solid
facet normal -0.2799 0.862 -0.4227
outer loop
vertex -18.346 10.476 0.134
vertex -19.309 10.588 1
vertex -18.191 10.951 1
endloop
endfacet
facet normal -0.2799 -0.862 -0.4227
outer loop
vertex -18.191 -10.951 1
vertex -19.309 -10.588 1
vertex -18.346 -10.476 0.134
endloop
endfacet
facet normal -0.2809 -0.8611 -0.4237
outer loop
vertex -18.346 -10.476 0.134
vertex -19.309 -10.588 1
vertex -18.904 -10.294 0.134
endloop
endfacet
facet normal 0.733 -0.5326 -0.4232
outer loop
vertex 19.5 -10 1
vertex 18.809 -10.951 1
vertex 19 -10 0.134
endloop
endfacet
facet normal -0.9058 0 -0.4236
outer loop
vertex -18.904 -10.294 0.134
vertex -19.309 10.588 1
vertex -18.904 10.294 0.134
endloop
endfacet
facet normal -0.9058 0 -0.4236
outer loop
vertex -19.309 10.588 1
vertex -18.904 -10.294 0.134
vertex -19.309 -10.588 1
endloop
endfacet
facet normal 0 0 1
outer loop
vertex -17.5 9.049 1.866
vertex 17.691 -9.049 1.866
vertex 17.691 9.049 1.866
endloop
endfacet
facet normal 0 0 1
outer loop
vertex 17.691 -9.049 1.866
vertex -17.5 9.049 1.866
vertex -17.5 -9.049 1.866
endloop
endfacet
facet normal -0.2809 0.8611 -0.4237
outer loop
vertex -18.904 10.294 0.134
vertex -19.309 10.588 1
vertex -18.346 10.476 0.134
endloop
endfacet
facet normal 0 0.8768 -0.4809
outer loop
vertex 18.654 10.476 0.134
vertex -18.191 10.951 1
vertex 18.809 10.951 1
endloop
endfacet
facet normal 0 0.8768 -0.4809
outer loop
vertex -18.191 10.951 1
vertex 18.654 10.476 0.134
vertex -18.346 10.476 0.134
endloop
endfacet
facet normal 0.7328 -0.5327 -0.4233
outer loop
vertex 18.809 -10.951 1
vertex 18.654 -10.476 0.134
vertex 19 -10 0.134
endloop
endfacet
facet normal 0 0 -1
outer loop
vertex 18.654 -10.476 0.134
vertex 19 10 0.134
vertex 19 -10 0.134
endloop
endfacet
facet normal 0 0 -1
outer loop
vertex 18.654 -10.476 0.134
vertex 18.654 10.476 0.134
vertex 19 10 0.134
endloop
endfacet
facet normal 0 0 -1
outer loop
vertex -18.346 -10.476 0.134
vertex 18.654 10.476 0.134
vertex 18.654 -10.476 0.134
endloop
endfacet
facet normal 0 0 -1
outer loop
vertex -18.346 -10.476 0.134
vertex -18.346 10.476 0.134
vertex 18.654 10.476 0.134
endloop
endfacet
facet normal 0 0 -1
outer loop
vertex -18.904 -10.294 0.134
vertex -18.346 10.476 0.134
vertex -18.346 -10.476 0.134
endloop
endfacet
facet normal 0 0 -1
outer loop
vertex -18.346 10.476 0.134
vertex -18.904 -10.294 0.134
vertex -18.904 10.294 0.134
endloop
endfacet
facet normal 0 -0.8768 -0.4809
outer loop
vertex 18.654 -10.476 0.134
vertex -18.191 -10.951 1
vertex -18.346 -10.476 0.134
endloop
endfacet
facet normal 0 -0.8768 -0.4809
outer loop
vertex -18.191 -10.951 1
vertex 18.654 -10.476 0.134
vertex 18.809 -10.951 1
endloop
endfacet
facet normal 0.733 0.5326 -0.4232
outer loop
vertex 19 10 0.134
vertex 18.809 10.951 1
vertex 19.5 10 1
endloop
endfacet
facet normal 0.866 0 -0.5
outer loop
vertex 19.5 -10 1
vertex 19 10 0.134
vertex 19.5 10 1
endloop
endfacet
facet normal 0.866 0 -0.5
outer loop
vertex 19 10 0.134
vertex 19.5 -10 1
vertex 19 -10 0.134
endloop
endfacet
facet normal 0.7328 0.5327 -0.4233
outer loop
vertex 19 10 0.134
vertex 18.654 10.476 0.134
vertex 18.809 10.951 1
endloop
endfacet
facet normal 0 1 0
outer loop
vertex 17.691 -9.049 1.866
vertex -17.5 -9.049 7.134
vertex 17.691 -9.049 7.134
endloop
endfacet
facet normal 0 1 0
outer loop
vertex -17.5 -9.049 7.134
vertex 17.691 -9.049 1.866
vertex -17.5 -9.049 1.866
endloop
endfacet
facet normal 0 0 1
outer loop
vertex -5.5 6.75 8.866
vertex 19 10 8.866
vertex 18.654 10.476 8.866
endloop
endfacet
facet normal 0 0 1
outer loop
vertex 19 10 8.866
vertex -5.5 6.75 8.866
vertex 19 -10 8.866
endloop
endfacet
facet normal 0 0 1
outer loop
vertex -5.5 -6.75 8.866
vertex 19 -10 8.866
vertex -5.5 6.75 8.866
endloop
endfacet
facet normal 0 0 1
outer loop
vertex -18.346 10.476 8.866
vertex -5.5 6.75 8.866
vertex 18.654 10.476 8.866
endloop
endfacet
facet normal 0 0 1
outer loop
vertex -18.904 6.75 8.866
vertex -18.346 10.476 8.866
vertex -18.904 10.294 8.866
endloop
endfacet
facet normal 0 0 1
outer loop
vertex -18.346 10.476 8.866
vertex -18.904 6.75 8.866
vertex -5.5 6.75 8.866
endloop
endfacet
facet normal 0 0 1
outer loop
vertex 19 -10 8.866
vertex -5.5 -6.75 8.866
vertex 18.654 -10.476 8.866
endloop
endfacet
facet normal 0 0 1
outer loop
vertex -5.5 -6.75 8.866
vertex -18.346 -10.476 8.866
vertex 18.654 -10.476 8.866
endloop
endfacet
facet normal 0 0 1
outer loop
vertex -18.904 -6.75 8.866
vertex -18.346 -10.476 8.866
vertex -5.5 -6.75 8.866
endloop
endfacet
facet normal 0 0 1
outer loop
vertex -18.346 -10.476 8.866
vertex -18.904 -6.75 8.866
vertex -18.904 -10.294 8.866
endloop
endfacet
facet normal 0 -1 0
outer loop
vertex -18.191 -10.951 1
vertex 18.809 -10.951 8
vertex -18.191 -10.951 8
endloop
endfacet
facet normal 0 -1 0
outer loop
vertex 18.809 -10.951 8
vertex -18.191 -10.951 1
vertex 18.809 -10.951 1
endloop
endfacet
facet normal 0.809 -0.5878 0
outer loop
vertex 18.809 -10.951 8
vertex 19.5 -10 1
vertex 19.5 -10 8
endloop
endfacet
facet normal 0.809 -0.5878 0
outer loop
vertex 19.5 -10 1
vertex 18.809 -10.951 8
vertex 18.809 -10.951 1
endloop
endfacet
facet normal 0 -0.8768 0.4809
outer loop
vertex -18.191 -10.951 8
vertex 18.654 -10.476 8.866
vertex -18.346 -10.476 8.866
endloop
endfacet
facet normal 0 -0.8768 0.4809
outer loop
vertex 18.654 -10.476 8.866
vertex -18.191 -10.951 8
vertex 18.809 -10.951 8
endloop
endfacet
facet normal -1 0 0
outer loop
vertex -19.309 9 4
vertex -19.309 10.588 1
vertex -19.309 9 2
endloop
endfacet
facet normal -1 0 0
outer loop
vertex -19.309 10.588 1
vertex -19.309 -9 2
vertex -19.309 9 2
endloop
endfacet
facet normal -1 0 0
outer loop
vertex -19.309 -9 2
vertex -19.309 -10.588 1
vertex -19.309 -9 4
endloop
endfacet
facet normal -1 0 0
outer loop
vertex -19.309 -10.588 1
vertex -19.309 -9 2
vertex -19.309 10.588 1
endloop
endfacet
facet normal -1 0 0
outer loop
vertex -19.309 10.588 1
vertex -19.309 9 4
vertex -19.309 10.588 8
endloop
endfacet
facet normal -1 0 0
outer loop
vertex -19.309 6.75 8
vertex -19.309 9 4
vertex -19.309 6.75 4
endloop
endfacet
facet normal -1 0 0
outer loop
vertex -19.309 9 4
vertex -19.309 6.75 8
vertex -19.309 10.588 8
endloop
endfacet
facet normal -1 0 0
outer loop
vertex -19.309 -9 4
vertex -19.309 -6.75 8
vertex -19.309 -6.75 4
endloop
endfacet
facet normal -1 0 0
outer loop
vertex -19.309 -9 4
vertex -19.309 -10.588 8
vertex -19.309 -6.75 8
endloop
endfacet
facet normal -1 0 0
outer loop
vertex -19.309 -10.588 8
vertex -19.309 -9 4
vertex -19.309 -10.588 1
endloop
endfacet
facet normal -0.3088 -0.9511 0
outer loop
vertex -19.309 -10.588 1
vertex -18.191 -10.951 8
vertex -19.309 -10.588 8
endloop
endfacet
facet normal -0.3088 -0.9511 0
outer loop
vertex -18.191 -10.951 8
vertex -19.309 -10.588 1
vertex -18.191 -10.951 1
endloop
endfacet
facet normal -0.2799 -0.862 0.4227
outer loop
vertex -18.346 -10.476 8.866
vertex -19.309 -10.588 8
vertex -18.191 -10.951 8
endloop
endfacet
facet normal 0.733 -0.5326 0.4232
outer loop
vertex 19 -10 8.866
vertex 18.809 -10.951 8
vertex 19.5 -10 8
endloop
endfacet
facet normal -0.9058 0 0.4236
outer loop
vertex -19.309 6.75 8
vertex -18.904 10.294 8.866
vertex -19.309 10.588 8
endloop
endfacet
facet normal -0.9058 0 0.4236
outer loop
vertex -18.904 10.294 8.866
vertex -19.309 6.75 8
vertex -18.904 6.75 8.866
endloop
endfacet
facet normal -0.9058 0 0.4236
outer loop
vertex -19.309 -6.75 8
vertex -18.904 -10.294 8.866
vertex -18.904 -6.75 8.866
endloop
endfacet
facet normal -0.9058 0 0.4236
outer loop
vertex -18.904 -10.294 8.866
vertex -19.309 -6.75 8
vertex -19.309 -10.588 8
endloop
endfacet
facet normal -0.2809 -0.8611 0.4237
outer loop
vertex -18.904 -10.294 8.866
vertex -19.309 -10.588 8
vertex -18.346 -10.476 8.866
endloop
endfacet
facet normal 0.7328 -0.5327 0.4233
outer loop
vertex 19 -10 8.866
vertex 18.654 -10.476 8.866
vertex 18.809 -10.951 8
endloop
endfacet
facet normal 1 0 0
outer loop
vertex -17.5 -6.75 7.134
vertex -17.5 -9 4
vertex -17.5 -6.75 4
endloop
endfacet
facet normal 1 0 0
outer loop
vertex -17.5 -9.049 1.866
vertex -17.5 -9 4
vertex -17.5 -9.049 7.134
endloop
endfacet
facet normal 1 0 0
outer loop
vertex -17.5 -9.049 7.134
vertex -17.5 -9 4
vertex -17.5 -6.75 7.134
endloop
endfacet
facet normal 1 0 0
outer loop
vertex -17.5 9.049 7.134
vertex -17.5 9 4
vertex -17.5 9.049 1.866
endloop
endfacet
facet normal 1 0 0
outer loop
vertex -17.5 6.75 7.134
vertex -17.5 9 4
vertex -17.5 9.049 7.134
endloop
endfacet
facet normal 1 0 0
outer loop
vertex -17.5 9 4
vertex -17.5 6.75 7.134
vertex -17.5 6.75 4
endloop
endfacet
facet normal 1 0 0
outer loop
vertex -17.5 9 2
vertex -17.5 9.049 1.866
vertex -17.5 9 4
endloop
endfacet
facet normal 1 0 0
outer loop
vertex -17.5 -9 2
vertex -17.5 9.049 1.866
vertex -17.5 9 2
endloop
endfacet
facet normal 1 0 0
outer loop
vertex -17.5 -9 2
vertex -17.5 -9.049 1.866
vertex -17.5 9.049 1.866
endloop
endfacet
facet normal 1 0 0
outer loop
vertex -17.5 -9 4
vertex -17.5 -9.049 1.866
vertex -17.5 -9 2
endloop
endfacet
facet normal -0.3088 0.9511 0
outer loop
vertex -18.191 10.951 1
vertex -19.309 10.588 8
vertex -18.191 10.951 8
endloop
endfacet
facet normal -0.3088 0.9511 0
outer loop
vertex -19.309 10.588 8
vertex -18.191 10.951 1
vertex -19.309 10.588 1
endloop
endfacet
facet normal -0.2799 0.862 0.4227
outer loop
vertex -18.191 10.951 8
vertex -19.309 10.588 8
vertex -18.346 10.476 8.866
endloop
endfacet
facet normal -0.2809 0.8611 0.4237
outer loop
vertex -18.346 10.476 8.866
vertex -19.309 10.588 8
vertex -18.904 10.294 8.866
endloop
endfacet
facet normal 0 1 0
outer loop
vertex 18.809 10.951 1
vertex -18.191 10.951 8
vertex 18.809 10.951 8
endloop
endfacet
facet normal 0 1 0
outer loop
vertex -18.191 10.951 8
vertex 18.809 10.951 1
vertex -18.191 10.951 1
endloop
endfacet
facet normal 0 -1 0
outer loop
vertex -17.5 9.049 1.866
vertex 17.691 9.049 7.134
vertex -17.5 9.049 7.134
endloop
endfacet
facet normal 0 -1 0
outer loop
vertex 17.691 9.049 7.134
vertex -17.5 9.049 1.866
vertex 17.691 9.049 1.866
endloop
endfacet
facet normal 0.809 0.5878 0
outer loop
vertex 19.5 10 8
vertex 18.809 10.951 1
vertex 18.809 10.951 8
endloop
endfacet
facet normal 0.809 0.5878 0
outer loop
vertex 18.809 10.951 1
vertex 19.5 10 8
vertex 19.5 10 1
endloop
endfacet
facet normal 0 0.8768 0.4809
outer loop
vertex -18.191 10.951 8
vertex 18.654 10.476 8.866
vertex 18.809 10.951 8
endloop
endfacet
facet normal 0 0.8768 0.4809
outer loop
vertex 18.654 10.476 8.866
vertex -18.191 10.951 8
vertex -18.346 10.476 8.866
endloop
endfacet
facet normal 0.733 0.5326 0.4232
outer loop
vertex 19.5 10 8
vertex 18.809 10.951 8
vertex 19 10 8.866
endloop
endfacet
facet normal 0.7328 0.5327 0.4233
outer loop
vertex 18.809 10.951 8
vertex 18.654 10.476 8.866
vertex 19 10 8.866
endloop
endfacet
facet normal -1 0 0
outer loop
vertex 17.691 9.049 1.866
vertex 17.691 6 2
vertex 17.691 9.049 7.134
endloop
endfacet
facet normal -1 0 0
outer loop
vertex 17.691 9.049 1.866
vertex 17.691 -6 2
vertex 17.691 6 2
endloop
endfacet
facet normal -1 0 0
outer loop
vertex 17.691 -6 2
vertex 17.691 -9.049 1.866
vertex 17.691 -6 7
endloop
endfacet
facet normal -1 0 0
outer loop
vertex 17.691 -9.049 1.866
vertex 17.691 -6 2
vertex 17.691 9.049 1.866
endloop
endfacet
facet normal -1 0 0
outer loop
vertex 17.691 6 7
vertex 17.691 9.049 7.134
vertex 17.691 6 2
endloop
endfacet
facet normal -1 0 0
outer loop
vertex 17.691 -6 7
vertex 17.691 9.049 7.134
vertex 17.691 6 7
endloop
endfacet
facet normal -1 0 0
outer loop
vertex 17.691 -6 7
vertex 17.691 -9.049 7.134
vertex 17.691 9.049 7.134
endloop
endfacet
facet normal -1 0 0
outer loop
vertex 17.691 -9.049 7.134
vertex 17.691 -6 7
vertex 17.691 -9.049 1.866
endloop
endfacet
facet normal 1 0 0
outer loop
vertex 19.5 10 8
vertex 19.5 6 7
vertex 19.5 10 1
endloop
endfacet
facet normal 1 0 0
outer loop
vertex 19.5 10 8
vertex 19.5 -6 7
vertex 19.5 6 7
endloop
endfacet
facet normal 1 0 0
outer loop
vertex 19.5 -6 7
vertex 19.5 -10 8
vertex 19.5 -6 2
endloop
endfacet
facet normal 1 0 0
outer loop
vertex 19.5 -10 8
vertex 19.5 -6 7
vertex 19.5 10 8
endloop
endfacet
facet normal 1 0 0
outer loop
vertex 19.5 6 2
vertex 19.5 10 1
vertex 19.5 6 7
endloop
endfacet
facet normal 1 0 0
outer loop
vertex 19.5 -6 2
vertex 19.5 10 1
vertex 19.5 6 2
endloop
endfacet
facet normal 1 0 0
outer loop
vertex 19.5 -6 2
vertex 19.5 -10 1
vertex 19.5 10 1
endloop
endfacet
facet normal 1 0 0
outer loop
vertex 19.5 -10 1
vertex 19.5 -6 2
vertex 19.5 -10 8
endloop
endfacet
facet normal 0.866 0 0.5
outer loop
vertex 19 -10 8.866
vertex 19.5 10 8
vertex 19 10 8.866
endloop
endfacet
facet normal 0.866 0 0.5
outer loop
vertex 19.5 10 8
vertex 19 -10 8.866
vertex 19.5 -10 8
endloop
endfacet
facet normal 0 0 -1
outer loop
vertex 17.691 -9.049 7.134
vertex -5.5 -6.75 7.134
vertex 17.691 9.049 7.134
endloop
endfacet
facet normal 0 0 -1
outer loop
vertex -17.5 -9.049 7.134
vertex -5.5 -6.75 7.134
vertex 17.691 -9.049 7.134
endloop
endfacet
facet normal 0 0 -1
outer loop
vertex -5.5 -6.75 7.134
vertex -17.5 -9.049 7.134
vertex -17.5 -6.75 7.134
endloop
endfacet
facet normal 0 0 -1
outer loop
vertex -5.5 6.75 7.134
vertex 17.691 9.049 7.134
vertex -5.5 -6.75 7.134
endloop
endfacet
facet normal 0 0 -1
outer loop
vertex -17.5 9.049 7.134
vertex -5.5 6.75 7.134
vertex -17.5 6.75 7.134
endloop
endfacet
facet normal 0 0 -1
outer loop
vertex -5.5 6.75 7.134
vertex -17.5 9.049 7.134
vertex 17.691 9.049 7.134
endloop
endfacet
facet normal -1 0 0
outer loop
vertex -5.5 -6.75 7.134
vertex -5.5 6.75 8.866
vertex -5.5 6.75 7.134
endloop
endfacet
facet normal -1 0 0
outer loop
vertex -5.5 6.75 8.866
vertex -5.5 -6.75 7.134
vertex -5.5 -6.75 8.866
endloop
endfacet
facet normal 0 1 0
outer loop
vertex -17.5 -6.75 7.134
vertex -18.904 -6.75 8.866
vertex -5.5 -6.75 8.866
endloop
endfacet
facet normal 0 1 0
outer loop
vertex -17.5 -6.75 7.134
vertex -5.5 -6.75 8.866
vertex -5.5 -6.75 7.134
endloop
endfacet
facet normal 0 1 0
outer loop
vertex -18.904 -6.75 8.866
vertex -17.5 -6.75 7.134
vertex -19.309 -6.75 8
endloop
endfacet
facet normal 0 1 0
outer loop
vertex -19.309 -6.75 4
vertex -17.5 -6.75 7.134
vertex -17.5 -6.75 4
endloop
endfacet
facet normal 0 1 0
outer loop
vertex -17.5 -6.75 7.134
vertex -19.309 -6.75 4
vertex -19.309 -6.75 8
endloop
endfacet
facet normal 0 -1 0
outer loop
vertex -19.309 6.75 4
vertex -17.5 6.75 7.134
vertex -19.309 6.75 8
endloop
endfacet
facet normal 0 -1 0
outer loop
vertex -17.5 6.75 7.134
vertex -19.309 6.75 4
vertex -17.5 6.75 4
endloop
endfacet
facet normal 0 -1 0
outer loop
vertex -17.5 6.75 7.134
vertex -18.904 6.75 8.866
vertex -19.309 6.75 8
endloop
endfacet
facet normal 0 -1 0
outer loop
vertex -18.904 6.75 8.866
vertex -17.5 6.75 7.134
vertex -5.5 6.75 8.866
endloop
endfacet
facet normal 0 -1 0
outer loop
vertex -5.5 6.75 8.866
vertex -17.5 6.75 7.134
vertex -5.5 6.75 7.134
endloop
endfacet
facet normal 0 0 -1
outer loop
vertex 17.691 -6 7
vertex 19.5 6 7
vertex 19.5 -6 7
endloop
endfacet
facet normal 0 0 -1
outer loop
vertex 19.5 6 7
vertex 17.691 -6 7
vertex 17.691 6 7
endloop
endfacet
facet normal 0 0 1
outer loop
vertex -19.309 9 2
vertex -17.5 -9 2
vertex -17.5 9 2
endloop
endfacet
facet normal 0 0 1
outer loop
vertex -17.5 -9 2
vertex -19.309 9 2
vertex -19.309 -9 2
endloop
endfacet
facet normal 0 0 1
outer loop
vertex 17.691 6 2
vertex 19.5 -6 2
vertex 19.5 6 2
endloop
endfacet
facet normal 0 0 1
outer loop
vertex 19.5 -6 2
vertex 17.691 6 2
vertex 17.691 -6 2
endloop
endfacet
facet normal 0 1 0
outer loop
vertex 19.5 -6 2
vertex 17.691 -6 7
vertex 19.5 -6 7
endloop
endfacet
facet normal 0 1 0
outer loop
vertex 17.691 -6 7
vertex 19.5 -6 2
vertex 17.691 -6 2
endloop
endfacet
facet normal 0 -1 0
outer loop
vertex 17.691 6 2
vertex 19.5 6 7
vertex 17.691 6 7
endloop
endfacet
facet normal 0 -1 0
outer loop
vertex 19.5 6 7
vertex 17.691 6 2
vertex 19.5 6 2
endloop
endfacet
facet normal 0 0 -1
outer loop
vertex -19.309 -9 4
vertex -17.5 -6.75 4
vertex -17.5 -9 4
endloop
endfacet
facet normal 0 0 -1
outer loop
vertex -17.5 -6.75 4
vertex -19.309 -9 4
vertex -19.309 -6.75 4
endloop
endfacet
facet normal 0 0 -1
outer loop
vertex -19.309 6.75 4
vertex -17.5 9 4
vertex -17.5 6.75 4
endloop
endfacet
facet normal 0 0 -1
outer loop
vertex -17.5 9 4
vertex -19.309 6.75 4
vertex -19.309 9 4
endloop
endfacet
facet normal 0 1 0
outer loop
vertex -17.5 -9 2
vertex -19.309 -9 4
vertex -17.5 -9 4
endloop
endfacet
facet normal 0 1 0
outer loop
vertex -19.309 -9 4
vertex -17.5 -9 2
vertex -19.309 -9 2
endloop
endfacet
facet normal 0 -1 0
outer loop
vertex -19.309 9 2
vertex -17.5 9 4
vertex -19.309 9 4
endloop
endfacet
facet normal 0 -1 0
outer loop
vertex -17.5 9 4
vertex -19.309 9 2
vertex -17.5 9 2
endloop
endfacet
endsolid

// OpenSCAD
// file: ../modules/hullBox.scad
module hullPlane(x, y, thickness) {
    translate([thickness/2, thickness/2, thickness/2])
        hull() {
            sphere(d=thickness);
            translate([x-thickness, 0, 0])
                sphere(d=thickness);
            translate([0, y-thickness, 0])
                sphere(d=thickness);
            translate([x-thickness, y-thickness, 0])
                sphere(d=thickness);
        }
}

module hullCube(x, y, z, thickness) {
    hull() {
        hullPlane(x, y, thickness);
        translate([0, 0, z])
            hullPlane(x, y, thickness);
    }
}

module hullBox(innerX, innerY, innerZ, thickness) {
    translate([-innerX/2-thickness, -innerY/2-thickness, 0]) {
        hullCube(innerX+2*thickness, innerY+2*thickness, thickness, thickness); // bottom
        hullCube(innerX+2*thickness, thickness, innerZ+3*thickness, thickness); //front
        hullCube(thickness, innerY+2*thickness, innerZ+3*thickness, thickness); // left
        translate([0, innerY+thickness, 0])
            hullCube(innerX+2*thickness, thickness, innerZ+3*thickness, thickness); // back
        translate([innerX+thickness, 0, 0])
            hullCube(thickness, innerY+2*thickness, innerZ+3*thickness, thickness); // right
    }
}

module hullLid(innerX, innerY, innerZ, thickness) {
    translate([-innerX/2-thickness, -innerY/2-thickness, 0]) {
        translate([0, -innerY-thickness-thickness-thickness, 0]) {
            hullCube(innerX+2*thickness, innerY+2*thickness, thickness, thickness);
            translate([thickness, thickness, 0])
                hullCube(innerX, innerY, thickness*2, thickness);
        }
    }
}

module hullBoxClosed(innerX, innerY, innerZ, thickness) {
    translate([-innerX/2-thickness, -innerY/2-thickness, 0]) {
        hullCube(innerX+2*thickness, innerY+2*thickness, 0, thickness); // bottom
        hullCube(innerX+2*thickness, thickness, innerZ+thickness, thickness); //front
        hullCube(thickness, innerY+2*thickness, innerZ+thickness, thickness); // left
        translate([0, innerY+thickness, 0])
            hullCube(innerX+2*thickness, thickness, innerZ+thickness, thickness); // back
        translate([innerX+thickness, 0, 0])
            hullCube(thickness, innerY+2*thickness, innerZ+thickness, thickness); // right
        translate([0, 0, innerZ+thickness])
            hullCube(innerX+2*thickness, innerY+2*thickness, 0, thickness); // top
    }
}

hullBox(30, 20, 10, 5);
hullLid(30, 20, 10, 5);

translate([50, 0, 0])
    hullBoxClosed(30, 20, 10, 5);
// main file
use <../modules/hullBox.scad>

innerX=35;
innerY=18;
innerZ=5;
thickness=2;

usbFemaleX=15;
usbFemaleY=13.5;
usbFemaleZ=7;

usbMaleX=innerX+2+thickness*2;
usbMaleY=12;
usbMaleZ=5;

difference() {
    hullBoxClosed(innerX, innerY, innerZ, thickness);
    union() {
        translate([-innerX/2-thickness-1, -usbFemaleY/2, thickness+1])
            cube([usbFemaleX, usbFemaleY, usbFemaleZ]);
        translate([-innerX/2-thickness-1, -usbMaleY/2, thickness])
            cube([usbMaleX, usbMaleY, usbMaleZ]);
        translate([-innerX/2-2, -innerY/2, thickness])
            cube([innerX+1, innerY, 2]);
    }
}
